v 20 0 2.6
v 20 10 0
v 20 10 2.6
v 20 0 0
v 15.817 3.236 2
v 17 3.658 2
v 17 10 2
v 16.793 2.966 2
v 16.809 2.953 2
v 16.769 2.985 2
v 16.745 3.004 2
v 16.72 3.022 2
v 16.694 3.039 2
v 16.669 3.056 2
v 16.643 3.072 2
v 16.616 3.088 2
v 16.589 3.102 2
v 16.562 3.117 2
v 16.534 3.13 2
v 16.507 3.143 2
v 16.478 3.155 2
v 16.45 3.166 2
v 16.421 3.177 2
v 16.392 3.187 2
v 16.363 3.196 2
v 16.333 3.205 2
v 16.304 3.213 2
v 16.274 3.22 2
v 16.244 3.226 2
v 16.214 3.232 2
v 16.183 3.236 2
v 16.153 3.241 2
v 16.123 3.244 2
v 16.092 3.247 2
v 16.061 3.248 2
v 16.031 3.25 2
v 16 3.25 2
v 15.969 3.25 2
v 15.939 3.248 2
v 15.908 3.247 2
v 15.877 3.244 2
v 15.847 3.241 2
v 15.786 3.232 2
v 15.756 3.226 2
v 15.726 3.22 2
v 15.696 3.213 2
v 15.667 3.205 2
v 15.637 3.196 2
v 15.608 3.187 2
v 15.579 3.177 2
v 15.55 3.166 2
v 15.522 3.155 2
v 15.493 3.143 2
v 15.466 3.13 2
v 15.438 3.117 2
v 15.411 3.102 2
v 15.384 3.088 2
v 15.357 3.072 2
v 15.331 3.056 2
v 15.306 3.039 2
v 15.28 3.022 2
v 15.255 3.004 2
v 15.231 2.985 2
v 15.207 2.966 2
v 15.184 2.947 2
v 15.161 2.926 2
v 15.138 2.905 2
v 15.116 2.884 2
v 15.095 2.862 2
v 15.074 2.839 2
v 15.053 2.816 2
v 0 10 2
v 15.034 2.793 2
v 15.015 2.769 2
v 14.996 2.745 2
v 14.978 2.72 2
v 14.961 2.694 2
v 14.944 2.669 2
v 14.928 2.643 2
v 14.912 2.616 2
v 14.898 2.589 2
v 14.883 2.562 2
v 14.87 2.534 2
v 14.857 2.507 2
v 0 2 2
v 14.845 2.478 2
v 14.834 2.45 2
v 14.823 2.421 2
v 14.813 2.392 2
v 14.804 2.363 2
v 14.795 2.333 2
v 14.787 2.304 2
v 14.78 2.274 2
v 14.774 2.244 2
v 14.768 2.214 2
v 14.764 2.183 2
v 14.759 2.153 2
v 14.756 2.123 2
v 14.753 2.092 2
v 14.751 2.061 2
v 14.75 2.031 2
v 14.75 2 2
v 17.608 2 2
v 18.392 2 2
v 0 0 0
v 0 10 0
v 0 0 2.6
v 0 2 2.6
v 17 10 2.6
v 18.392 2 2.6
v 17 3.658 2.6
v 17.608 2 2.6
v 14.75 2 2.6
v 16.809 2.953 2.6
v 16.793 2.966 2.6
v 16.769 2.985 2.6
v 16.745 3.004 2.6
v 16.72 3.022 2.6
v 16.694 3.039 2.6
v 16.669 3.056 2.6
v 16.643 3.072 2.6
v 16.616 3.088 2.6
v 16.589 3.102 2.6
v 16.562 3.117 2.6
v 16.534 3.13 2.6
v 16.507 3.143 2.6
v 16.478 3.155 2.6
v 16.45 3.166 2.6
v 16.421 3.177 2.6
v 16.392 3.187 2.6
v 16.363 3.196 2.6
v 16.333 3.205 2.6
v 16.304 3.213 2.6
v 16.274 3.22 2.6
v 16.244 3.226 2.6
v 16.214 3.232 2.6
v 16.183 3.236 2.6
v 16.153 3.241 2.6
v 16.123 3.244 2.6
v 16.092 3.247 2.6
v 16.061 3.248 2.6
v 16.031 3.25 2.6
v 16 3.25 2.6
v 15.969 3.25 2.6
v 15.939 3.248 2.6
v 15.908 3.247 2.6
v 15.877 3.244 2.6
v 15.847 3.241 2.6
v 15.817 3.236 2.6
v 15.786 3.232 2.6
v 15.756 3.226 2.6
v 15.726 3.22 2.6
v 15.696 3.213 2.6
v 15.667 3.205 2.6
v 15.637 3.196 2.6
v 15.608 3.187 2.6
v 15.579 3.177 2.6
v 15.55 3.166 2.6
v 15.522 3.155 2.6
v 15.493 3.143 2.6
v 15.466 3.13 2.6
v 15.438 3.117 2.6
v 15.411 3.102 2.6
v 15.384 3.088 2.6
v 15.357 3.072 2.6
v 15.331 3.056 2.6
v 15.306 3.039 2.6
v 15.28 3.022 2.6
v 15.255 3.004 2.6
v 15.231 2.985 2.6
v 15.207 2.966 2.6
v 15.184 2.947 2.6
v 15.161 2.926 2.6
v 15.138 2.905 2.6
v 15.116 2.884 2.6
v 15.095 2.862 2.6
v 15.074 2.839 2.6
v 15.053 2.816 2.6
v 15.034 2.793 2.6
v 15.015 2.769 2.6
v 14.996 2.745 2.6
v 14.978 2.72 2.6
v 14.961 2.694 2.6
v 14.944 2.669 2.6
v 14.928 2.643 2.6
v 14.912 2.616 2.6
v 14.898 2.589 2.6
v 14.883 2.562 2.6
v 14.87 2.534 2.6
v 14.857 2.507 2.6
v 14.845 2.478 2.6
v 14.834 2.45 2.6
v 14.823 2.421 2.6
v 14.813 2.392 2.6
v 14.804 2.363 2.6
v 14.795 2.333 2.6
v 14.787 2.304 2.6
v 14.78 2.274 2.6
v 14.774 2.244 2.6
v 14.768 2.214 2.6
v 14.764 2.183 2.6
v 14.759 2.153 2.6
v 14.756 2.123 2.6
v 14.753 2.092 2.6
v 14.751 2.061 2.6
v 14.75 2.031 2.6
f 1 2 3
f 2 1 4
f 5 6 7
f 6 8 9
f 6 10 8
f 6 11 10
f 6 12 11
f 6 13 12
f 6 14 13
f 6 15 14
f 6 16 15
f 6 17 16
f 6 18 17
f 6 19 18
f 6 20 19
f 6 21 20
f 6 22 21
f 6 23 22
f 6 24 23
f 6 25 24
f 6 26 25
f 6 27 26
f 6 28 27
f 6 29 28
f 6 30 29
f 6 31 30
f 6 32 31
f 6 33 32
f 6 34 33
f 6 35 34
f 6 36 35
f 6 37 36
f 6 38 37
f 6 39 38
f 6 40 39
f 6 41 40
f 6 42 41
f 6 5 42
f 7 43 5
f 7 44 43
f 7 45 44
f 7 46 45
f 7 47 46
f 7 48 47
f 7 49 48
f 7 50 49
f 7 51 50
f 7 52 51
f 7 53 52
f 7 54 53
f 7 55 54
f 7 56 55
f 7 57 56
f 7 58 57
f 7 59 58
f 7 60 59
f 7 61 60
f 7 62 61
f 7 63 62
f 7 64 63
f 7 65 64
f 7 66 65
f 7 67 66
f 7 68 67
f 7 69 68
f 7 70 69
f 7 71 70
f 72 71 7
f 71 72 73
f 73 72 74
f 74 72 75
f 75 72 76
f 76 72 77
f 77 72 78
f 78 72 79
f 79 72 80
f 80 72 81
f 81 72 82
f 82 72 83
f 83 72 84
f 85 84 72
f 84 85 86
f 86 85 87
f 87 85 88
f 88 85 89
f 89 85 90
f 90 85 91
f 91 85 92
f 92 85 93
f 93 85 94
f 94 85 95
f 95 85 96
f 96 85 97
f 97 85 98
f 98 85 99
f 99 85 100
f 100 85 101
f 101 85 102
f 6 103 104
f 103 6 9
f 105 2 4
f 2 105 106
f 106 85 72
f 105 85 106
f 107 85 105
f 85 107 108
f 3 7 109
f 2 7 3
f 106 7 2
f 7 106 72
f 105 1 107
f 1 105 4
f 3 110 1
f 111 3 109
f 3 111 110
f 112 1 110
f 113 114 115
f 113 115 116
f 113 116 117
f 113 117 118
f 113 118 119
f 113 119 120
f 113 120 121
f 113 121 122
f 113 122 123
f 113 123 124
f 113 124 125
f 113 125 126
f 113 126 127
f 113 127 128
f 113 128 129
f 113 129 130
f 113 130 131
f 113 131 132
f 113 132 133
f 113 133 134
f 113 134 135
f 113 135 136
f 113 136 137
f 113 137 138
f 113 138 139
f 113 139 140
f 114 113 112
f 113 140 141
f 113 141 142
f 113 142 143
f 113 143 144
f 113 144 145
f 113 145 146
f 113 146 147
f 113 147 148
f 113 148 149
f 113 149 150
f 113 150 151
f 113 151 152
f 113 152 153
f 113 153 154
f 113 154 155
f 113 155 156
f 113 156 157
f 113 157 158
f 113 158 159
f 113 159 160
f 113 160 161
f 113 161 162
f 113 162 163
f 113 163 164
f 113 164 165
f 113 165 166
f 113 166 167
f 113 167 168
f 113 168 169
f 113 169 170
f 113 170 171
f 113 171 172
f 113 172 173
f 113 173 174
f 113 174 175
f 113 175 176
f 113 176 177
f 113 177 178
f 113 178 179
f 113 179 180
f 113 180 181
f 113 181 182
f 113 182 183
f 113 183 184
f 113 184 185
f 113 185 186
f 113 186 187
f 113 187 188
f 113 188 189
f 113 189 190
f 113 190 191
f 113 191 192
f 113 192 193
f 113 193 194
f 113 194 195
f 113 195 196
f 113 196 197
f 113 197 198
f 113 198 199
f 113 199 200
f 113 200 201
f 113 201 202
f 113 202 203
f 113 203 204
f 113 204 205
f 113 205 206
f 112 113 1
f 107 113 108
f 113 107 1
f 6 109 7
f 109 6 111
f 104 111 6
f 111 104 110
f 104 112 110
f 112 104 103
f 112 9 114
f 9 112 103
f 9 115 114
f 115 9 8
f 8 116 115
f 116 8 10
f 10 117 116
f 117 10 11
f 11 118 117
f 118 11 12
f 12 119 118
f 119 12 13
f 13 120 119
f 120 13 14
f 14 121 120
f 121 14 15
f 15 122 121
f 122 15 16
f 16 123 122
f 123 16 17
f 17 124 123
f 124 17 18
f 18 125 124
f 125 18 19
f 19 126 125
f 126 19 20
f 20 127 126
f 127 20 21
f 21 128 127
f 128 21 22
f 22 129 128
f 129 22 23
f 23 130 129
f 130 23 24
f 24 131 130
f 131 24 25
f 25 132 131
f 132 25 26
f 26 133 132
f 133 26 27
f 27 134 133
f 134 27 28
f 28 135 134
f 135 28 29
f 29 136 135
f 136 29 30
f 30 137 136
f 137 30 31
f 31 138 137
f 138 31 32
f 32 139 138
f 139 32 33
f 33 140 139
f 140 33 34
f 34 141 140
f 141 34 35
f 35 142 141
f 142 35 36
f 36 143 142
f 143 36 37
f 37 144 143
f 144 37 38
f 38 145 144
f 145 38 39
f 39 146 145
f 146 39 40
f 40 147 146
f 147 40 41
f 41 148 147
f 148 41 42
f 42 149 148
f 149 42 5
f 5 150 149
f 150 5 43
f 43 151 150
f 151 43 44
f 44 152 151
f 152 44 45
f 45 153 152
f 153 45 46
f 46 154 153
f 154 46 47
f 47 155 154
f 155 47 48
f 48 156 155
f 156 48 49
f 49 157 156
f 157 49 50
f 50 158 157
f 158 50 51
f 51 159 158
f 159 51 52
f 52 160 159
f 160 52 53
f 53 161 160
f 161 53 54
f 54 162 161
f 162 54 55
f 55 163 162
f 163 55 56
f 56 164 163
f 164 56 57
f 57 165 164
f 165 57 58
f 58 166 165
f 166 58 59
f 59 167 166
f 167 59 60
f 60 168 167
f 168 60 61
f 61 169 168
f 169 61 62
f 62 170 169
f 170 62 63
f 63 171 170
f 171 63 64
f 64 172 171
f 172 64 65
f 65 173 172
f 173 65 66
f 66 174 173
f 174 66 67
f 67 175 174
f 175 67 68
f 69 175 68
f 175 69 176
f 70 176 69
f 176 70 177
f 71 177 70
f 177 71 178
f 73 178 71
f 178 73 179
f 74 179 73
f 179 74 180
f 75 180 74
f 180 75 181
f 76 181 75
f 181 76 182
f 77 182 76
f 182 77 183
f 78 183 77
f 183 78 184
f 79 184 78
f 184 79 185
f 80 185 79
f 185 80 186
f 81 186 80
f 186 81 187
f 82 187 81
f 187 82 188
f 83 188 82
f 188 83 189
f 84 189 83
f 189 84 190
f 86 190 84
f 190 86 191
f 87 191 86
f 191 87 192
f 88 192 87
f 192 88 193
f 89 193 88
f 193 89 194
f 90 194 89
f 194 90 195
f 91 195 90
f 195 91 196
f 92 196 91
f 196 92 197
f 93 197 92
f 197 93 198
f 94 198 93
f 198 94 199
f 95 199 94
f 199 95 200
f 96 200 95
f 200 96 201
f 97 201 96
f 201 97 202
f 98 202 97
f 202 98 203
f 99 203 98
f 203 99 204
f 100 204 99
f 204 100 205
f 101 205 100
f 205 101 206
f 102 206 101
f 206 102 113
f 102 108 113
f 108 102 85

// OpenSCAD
$fn = 256;

cube([20, 10, 2]);

linear_extrude(2.6) {
	square([20, 2]);
/*	translate([16, 2]) {
		circle(r = 1.25);
		
		intersection() {
			difference() {
				circle(r = 10);
				circle(r = 2);
			}
			translate([1, -2]) square([3, 10]);
		}
	}*/
	difference() {
		union() {
			translate([16, 2]) circle(r = 1.25);
			translate([17, 0]) square([3, 10]);
		}
		
		translate([18, 2.0]) rotate([0, 0, -50]) square([10, .6], center = true);
	}
}

/*
translate([0, 0, 3]) linear_extrude(0.6) {
	difference() {
		translate([0, 2.75]) square([17, 7.25]);

		translate([16, 2])
			circle(r = 2);
	}
}

translate([0, 0, 3.6]) cube([20, 10, 2]);
*/
